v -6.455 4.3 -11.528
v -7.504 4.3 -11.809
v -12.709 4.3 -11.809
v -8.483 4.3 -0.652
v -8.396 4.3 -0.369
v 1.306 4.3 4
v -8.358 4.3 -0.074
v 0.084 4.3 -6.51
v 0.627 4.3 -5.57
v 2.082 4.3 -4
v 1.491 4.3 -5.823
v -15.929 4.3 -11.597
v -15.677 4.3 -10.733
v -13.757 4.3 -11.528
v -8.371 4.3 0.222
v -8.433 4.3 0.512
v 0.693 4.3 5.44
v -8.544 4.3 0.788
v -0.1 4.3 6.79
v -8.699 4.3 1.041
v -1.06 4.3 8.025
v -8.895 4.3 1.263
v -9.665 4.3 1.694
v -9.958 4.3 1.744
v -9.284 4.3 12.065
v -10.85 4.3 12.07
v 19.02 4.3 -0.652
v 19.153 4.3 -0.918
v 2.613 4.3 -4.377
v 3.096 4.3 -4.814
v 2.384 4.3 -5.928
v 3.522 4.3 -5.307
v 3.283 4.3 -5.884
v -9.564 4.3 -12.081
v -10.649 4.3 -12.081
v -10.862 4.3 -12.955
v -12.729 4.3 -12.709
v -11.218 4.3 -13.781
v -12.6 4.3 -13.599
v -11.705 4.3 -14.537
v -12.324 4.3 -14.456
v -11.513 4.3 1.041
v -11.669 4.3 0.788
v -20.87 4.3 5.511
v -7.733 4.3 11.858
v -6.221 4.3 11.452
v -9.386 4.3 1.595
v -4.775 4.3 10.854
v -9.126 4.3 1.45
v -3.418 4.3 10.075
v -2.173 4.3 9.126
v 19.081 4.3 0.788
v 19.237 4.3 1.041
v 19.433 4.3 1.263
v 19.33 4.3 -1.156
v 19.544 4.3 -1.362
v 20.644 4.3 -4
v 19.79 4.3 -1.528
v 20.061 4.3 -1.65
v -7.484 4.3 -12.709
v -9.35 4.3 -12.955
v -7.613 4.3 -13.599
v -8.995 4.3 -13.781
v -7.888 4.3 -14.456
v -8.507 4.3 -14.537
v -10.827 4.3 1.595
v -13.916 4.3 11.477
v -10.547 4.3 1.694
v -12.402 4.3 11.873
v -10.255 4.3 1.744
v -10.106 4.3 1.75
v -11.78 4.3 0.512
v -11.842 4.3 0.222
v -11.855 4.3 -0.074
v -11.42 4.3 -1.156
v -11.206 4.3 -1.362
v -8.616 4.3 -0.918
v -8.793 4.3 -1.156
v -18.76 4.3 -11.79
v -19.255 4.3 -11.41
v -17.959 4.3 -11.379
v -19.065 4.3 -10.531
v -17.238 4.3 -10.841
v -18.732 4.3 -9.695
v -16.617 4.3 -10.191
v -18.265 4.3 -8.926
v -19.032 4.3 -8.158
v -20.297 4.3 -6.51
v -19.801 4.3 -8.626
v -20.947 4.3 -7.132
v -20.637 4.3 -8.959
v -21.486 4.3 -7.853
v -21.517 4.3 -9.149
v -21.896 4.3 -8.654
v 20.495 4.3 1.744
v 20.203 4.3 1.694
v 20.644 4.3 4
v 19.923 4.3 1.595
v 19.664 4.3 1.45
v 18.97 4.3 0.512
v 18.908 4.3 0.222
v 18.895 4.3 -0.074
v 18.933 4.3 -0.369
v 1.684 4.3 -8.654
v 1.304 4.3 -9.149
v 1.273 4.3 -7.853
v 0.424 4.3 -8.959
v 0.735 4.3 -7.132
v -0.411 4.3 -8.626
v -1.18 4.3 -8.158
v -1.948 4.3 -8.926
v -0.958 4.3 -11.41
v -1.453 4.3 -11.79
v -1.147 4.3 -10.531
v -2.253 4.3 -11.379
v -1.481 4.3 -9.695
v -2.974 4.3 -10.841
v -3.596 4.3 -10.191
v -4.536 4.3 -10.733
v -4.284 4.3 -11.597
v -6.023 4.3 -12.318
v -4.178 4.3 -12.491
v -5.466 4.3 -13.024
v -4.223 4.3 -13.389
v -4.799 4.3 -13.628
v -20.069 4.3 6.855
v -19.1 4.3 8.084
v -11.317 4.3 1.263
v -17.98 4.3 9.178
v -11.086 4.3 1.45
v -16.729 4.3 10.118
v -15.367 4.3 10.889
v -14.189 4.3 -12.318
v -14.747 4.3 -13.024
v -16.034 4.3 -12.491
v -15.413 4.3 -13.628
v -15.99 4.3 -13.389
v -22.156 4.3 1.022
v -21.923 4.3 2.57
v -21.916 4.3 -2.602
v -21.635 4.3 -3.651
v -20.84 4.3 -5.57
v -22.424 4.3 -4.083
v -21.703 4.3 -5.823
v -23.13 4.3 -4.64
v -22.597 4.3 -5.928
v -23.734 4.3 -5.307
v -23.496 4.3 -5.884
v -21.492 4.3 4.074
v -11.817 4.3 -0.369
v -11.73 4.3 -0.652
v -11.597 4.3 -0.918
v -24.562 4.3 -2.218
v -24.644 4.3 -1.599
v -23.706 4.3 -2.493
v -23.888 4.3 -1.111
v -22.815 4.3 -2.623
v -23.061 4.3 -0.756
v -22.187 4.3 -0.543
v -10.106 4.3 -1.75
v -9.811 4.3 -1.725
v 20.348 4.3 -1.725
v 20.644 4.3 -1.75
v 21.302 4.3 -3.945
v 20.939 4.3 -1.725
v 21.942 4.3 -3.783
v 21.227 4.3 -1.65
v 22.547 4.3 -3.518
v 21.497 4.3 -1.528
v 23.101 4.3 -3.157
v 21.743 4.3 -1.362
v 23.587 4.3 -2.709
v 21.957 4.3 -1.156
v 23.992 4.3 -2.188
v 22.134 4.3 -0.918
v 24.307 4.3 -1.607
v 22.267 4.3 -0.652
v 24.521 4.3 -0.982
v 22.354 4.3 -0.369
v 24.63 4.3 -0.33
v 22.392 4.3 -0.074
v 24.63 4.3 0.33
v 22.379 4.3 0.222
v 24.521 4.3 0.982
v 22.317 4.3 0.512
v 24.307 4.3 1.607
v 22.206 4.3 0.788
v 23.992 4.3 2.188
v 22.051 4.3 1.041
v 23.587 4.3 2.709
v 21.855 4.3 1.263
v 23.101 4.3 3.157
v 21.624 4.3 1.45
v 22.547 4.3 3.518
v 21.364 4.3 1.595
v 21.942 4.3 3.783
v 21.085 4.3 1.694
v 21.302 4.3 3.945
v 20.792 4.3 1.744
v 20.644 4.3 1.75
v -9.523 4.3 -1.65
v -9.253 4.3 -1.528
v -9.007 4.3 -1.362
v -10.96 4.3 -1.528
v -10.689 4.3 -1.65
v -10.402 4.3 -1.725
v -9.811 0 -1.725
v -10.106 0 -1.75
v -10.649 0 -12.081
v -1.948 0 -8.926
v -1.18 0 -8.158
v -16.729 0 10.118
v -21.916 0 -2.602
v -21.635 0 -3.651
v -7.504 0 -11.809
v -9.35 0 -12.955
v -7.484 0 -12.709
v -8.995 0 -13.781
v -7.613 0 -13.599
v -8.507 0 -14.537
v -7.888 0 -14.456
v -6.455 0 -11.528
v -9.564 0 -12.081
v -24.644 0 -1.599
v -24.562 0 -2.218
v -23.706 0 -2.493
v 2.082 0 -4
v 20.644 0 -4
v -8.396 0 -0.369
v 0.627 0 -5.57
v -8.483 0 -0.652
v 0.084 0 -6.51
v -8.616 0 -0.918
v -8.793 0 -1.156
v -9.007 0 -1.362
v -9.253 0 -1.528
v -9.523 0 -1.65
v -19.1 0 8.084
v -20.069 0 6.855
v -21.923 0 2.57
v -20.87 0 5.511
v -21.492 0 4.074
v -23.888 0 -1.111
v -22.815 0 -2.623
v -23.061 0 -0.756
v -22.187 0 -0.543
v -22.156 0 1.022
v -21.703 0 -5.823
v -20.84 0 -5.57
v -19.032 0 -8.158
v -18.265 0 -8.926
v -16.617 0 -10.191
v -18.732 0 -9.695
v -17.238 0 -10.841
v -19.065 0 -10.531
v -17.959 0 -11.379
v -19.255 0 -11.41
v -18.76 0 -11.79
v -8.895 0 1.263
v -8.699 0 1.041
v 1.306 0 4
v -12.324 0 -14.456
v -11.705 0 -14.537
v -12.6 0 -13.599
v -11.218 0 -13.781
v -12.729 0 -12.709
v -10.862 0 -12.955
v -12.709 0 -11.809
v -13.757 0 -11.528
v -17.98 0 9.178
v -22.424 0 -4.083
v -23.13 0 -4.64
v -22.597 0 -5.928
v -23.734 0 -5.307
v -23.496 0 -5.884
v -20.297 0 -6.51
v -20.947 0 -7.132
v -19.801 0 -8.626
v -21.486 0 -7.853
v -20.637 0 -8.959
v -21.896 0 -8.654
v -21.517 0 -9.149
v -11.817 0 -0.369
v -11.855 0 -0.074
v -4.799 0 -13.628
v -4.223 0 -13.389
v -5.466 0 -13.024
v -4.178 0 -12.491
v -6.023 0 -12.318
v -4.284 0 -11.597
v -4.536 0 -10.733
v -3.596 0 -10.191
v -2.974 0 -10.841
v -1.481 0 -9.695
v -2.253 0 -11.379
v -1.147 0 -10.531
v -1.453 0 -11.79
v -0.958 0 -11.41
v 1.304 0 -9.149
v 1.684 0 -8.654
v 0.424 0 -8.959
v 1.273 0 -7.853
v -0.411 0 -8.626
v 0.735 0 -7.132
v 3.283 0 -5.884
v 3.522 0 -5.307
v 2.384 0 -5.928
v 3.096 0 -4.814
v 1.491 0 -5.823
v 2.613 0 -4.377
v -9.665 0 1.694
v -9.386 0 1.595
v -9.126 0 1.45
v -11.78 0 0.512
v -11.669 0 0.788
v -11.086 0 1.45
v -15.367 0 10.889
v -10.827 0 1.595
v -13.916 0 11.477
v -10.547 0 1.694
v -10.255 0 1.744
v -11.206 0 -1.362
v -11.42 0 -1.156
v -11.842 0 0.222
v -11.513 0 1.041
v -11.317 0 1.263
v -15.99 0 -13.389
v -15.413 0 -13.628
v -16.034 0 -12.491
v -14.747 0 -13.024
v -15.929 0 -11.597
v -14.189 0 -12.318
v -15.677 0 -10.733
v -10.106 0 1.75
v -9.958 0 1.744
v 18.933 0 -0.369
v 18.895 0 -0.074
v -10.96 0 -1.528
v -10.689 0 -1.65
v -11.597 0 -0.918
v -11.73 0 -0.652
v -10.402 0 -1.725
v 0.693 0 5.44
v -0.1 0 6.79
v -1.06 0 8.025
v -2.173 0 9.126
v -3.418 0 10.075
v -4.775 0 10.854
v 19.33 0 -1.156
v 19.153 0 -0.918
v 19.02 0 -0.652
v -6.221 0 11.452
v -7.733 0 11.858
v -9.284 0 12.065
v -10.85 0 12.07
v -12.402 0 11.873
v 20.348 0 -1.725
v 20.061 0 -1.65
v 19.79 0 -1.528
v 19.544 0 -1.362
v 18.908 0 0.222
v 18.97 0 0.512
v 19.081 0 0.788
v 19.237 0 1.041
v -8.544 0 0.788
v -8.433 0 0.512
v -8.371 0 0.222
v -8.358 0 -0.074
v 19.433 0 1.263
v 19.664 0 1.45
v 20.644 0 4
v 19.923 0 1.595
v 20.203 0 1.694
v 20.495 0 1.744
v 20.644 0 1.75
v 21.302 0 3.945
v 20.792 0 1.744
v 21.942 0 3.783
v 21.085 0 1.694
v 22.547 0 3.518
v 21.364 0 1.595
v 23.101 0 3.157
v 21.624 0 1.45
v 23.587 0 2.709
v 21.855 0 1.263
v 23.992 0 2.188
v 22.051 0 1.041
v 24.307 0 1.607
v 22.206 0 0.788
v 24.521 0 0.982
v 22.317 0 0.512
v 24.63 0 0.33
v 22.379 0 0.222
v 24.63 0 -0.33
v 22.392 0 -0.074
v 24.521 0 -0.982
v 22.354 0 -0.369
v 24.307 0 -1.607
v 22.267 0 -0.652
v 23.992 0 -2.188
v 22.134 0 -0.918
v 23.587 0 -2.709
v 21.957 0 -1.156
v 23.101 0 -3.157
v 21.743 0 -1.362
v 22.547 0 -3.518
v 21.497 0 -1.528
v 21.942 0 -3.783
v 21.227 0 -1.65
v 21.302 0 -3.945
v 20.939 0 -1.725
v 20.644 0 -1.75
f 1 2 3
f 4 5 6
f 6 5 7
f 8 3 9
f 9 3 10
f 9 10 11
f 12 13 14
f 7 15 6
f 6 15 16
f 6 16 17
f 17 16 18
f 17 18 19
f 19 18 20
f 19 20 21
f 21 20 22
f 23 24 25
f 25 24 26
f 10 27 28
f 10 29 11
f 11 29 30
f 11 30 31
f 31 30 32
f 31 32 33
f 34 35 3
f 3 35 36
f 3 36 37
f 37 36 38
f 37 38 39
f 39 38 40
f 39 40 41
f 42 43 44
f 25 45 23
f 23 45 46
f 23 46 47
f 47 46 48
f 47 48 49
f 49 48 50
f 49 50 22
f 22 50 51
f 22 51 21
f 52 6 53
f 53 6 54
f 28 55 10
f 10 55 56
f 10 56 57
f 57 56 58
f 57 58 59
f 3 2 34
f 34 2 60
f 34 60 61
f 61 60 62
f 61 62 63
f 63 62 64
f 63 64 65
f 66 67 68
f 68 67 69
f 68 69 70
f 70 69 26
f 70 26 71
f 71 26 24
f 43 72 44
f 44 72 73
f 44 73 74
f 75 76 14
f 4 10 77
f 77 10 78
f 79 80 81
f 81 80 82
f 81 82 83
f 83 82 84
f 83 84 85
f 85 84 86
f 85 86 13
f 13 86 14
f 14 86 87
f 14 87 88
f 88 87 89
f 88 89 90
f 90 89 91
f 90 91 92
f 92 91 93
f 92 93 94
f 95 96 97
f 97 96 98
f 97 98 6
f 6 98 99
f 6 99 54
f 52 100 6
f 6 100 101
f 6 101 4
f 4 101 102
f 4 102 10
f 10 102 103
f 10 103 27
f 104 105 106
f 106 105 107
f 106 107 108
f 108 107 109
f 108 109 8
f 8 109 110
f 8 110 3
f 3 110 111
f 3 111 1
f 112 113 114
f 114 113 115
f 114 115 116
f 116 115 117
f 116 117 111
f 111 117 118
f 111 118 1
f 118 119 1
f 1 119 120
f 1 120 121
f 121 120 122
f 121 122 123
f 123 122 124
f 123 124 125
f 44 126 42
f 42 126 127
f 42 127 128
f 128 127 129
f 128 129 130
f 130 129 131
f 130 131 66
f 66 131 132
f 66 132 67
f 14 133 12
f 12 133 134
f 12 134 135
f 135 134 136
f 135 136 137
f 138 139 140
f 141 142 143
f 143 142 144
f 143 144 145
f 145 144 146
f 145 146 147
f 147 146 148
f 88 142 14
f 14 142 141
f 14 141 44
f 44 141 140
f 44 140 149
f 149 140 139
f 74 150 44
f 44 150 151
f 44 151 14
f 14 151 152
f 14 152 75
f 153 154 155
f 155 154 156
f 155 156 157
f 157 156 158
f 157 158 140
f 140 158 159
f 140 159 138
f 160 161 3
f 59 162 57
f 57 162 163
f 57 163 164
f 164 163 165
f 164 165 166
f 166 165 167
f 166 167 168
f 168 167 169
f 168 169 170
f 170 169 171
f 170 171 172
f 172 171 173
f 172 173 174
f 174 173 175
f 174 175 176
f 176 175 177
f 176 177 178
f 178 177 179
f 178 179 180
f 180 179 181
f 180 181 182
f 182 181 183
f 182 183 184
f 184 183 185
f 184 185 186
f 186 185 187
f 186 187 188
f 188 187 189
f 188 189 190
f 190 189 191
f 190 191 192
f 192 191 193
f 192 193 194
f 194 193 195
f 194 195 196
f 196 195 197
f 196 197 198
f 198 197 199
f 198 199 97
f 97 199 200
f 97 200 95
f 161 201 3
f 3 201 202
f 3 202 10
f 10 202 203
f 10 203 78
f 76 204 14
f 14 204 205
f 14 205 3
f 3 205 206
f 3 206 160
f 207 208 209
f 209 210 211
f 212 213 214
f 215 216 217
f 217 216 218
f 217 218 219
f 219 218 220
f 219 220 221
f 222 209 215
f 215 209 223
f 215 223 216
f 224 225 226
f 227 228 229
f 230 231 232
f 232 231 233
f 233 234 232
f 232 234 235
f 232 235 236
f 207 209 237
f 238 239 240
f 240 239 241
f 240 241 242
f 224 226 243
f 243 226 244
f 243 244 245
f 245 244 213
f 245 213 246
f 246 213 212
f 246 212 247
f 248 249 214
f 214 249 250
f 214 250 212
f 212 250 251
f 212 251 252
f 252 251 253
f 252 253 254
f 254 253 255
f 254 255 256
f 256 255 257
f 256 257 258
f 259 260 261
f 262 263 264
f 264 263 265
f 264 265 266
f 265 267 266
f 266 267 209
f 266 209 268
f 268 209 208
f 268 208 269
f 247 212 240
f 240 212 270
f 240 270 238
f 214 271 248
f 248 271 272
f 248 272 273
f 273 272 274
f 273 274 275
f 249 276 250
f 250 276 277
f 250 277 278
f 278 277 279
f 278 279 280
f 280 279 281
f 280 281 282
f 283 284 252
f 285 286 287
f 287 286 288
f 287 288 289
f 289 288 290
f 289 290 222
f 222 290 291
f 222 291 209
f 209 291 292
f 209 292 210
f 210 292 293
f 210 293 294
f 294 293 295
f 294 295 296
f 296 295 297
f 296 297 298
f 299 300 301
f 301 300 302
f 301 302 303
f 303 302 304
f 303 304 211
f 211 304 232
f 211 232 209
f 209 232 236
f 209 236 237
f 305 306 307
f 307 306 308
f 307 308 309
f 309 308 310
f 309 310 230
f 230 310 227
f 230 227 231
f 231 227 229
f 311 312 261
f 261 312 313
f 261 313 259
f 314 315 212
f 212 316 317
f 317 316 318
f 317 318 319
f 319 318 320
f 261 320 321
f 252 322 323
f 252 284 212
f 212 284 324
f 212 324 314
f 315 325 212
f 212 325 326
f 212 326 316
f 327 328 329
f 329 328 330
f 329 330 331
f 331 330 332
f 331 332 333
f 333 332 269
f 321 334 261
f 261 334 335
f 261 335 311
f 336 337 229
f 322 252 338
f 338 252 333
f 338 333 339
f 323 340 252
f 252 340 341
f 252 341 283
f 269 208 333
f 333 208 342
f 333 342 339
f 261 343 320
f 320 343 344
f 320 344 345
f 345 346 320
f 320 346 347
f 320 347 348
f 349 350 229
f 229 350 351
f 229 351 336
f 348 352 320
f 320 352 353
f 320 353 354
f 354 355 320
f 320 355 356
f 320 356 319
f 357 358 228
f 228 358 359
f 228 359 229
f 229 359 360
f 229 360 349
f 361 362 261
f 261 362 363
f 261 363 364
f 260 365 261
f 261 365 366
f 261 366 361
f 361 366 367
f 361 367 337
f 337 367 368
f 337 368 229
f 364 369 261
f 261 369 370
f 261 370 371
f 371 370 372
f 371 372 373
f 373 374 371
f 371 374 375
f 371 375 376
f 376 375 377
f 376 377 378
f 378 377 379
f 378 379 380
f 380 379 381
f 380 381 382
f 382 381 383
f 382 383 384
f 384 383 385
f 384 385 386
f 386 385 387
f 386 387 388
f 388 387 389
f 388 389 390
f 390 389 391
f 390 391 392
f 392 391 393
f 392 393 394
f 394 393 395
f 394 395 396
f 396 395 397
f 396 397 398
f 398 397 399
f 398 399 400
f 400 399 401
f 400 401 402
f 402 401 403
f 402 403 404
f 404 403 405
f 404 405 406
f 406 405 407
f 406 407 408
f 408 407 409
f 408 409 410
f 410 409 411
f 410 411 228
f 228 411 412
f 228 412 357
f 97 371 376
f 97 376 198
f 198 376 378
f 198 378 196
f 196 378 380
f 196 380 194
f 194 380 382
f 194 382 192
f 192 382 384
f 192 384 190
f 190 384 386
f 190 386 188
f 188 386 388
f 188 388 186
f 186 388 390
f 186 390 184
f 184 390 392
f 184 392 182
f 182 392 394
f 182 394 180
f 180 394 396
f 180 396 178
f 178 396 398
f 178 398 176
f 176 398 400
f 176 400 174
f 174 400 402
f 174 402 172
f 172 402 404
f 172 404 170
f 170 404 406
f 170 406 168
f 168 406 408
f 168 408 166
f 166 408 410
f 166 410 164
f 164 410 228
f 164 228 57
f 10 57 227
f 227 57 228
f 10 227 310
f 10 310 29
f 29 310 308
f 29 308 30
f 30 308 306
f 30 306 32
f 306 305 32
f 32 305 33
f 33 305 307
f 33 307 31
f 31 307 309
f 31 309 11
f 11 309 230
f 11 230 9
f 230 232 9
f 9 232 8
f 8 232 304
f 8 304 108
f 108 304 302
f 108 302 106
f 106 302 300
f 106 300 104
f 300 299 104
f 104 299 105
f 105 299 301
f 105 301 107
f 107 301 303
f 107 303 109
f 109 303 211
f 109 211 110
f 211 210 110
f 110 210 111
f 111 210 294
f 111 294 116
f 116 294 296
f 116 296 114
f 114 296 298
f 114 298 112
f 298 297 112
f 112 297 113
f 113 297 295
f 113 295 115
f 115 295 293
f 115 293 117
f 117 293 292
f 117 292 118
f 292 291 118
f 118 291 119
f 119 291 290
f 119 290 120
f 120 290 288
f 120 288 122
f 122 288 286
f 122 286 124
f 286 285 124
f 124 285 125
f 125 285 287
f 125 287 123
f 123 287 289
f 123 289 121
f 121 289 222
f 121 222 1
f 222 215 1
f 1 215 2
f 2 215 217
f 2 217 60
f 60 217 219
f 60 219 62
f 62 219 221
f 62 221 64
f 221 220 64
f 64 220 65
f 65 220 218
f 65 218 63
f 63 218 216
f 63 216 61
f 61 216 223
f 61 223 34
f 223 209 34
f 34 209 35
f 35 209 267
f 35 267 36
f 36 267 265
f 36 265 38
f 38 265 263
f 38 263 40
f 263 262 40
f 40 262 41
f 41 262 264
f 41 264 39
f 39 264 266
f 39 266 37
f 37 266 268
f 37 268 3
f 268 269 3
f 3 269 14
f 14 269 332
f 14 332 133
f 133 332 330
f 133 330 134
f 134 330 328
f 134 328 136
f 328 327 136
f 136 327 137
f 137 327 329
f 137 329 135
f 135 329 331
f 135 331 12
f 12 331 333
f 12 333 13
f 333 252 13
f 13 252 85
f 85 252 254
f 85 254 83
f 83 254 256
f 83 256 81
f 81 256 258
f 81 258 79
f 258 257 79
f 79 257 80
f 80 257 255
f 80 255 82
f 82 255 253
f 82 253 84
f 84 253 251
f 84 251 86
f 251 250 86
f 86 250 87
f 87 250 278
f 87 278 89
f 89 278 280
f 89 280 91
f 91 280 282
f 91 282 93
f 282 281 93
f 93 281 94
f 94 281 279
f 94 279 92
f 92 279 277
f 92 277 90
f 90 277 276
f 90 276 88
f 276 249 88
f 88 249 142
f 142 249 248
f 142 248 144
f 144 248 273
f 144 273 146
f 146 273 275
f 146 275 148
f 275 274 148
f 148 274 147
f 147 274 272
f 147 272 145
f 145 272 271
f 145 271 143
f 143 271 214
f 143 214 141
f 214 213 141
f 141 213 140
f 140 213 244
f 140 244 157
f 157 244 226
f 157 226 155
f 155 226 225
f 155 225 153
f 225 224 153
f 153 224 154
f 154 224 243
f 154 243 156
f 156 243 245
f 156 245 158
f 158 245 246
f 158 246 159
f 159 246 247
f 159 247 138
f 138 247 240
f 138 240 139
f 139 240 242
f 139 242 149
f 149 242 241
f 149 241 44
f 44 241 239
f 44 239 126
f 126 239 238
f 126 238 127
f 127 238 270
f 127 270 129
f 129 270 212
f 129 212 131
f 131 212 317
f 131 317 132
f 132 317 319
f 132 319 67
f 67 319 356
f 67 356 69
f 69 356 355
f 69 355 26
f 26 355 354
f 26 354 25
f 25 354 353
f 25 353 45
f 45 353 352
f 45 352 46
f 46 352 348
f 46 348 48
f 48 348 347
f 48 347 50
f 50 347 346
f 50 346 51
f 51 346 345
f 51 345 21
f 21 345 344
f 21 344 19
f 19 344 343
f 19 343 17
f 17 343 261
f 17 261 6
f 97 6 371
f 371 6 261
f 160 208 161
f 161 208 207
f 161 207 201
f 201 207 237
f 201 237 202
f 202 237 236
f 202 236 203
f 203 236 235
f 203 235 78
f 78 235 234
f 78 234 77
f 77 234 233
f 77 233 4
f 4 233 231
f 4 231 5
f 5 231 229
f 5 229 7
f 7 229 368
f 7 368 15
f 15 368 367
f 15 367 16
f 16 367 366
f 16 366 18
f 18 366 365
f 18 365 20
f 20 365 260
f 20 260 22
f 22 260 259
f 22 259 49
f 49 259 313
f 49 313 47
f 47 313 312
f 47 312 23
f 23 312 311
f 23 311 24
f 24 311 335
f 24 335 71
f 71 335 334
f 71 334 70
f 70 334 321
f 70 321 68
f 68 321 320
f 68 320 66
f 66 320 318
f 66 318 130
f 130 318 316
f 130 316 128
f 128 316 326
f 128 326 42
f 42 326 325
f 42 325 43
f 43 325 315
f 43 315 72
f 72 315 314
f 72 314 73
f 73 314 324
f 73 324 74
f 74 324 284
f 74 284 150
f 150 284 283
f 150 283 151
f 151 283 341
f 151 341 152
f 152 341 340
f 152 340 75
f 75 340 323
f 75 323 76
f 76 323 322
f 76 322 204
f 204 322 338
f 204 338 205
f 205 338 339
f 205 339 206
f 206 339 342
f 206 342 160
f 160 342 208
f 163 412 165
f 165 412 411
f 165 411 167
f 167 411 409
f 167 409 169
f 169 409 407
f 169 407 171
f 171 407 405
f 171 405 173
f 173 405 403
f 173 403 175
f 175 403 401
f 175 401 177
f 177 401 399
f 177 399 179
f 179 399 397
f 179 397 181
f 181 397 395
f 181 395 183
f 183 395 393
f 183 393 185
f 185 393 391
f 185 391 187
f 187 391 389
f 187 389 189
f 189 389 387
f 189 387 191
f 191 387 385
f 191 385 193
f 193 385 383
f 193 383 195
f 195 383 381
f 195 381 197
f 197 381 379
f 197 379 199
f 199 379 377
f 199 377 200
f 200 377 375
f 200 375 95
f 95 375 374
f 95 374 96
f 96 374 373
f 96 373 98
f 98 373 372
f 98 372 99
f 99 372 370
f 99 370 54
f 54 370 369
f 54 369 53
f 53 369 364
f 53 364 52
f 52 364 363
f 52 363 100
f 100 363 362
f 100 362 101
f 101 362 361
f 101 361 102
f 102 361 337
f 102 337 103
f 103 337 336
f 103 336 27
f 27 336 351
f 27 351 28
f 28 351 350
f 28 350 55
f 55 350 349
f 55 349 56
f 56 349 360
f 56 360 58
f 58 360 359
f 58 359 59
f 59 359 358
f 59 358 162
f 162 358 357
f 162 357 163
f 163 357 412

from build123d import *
from build123d.topology import SkipClean

# Parameters (mm, degrees)
SKETCH1_R           = 1.75
BOSS_EXTRUDE1_DEPTH = 4.3
CUT_EXTRUDE1_START  = -10
CUT_EXTRUDE1_DEPTH  = 10


with BuildPart() as part:
    # Sketch1 → Boss-Extrude1 (new body)
    with BuildSketch(Plane(origin=(0, 0, 0), x_dir=(1, 0, 0), z_dir=(0, 1, 0))):
        with BuildLine():
            Line((20.643657446, 4), (2.081641936, 4))
            ThreePointArc((2.081641936, 4), (2.861028333, 4.588201733), (3.521749436, 5.30713988))
            ThreePointArc((3.521749436, 5.30713988), (3.405395609, 5.596745198), (3.282888305, 5.883801663))
            ThreePointArc((3.282888305, 5.883801663), (1.93527598, 5.894040025), (0.627094961, 5.57027124))
            ThreePointArc((0.627094961, 5.57027124), (0.366286148, 6.046375), (0.084372603, 6.510293938))
            ThreePointArc((0.084372603, 6.510293938), (1.018855105, 7.48132754), (1.683794586, 8.65351323))
            ThreePointArc((1.683794586, 8.65351323), (1.496450048, 8.903135899), (1.303821399, 9.148703928))
            ThreePointArc((1.303821399, 9.148703928), (-0.000522033, 8.809805691), (-1.180330337, 8.158486898))
            ThreePointArc((-1.180330337, 8.158486898), (-1.555477026, 8.550865528), (-1.947855656, 8.926012217))
            ThreePointArc((-1.947855656, 8.926012217), (-1.296536862, 10.105820521), (-0.957638625, 11.410163953))
            ThreePointArc((-0.957638625, 11.410163953), (-1.203206655, 11.602792602), (-1.452829324, 11.79013714))
            ThreePointArc((-1.452829324, 11.79013714), (-2.625015014, 11.125197659), (-3.596048616, 10.190715157))
            ThreePointArc((-3.596048616, 10.190715157), (-4.059967554, 10.472628702), (-4.536071314, 10.733437515))
            ThreePointArc((-4.536071314, 10.733437515), (-4.212302529, 12.041618533), (-4.222540891, 13.389230859))
            ThreePointArc((-4.222540891, 13.389230859), (-4.509597355, 13.511738163), (-4.799202674, 13.62809199))
            ThreePointArc((-4.799202674, 13.62809199), (-5.759348103, 12.682425791), (-6.455432668, 11.528463019))
            ThreePointArc((-6.455432668, 11.528463019), (-6.976508546, 11.680699536), (-7.503891752, 11.809396783))
            ThreePointArc((-7.503891752, 11.809396783), (-7.529737283, 13.156800143), (-7.888414517, 14.455843809))
            ThreePointArc((-7.888414517, 14.455843809), (-8.197396993, 14.499881098), (-8.507248835, 14.537314892))
            ThreePointArc((-8.507248835, 14.537314892), (-9.18992168, 13.375367565), (-9.563620196, 12.080565177))
            ThreePointArc((-9.563620196, 12.080565177), (-10.106342554, 12.09275), (-10.649064912, 12.080565177))
            ThreePointArc((-10.649064912, 12.080565177), (-11.022763428, 13.375367565), (-11.705436272, 14.537314892))
            ThreePointArc((-11.705436272, 14.537314892), (-12.015288115, 14.499881098), (-12.324270591, 14.455843809))
            ThreePointArc((-12.324270591, 14.455843809), (-12.682947825, 13.156800143), (-12.708793355, 11.809396783))
            ThreePointArc((-12.708793355, 11.809396783), (-13.236176561, 11.680699536), (-13.757252439, 11.528463019))
            ThreePointArc((-13.757252439, 11.528463019), (-14.453337005, 12.682425791), (-15.413482434, 13.62809199))
            ThreePointArc((-15.413482434, 13.62809199), (-15.703087752, 13.511738163), (-15.990144217, 13.389230859))
            ThreePointArc((-15.990144217, 13.389230859), (-16.000382579, 12.041618533), (-15.676613793, 10.733437515))
            ThreePointArc((-15.676613793, 10.733437515), (-16.152717554, 10.472628702), (-16.616636492, 10.190715157))
            ThreePointArc((-16.616636492, 10.190715157), (-17.587670094, 11.125197659), (-18.759855783, 11.79013714))
            ThreePointArc((-18.759855783, 11.79013714), (-19.009478453, 11.602792602), (-19.255046482, 11.410163953))
            ThreePointArc((-19.255046482, 11.410163953), (-18.916148245, 10.105820521), (-18.264829452, 8.926012217))
            ThreePointArc((-18.264829452, 8.926012217), (-18.657208082, 8.550865528), (-19.032354771, 8.158486898))
            ThreePointArc((-19.032354771, 8.158486898), (-20.212163074, 8.809805691), (-21.516506507, 9.148703928))
            ThreePointArc((-21.516506507, 9.148703928), (-21.709135156, 8.903135899), (-21.896479694, 8.65351323))
            ThreePointArc((-21.896479694, 8.65351323), (-21.231540213, 7.48132754), (-20.297057711, 6.510293938))
            ThreePointArc((-20.297057711, 6.510293938), (-20.578971255, 6.046375), (-20.839780068, 5.57027124))
            ThreePointArc((-20.839780068, 5.57027124), (-22.147961087, 5.894040025), (-23.495573413, 5.883801663))
            ThreePointArc((-23.495573413, 5.883801663), (-23.618080717, 5.596745198), (-23.734434544, 5.30713988))
            ThreePointArc((-23.734434544, 5.30713988), (-22.788768345, 4.346994451), (-21.634805572, 3.650909885))
            ThreePointArc((-21.634805572, 3.650909885), (-21.78704209, 3.129834008), (-21.915739337, 2.602450802))
            ThreePointArc((-21.915739337, 2.602450802), (-23.263142697, 2.576605271), (-24.562186363, 2.217928037))
            ThreePointArc((-24.562186363, 2.217928037), (-24.606223651, 1.908945561), (-24.643657446, 1.599093719))
            ThreePointArc((-24.643657446, 1.599093719), (-23.481710119, 0.916420874), (-22.186907731, 0.542722358))
            ThreePointArc((-22.186907731, 0.542722358), (-22.199092554, 0), (-22.186907731, -0.542722358))
            ThreePointArc((-22.186907731, -0.542722358), (-23.481710119, -0.916420874), (-24.643657446, -1.599093719))
            ThreePointArc((-24.643657446, -1.599093719), (-24.606223651, -1.908945561), (-24.562186363, -2.217928037))
            ThreePointArc((-24.562186363, -2.217928037), (-23.263142697, -2.576605271), (-21.915739337, -2.602450802))
            ThreePointArc((-21.915739337, -2.602450802), (-21.78704209, -3.129834008), (-21.634805572, -3.650909885))
            ThreePointArc((-21.634805572, -3.650909885), (-22.788768345, -4.346994451), (-23.734434544, -5.30713988))
            ThreePointArc((-23.734434544, -5.30713988), (-23.618080717, -5.596745198), (-23.495573413, -5.883801663))
            ThreePointArc((-23.495573413, -5.883801663), (-22.147961087, -5.894040025), (-20.839780068, -5.57027124))
            ThreePointArc((-20.839780068, -5.57027124), (-20.578971255, -6.046375), (-20.297057711, -6.510293938))
            ThreePointArc((-20.297057711, -6.510293938), (-21.231540213, -7.48132754), (-21.896479694, -8.65351323))
            ThreePointArc((-21.896479694, -8.65351323), (-21.709135156, -8.903135899), (-21.516506507, -9.148703928))
            ThreePointArc((-21.516506507, -9.148703928), (-20.212163074, -8.809805691), (-19.032354771, -8.158486898))
            ThreePointArc((-19.032354771, -8.158486898), (-18.657208082, -8.550865528), (-18.264829452, -8.926012217))
            ThreePointArc((-18.264829452, -8.926012217), (-18.916148245, -10.105820521), (-19.255046482, -11.410163953))
            ThreePointArc((-19.255046482, -11.410163953), (-19.009478453, -11.602792602), (-18.759855783, -11.79013714))
            ThreePointArc((-18.759855783, -11.79013714), (-17.587670094, -11.125197659), (-16.616636492, -10.190715157))
            ThreePointArc((-16.616636492, -10.190715157), (-16.152717554, -10.472628702), (-15.676613793, -10.733437515))
            ThreePointArc((-15.676613793, -10.733437515), (-16.000382579, -12.041618533), (-15.990144217, -13.389230859))
            ThreePointArc((-15.990144217, -13.389230859), (-15.703087752, -13.511738163), (-15.413482434, -13.62809199))
            ThreePointArc((-15.413482434, -13.62809199), (-14.453337005, -12.682425791), (-13.757252439, -11.528463019))
            ThreePointArc((-13.757252439, -11.528463019), (-13.236176561, -11.680699536), (-12.708793355, -11.809396783))
            ThreePointArc((-12.708793355, -11.809396783), (-12.682947825, -13.156800143), (-12.324270591, -14.455843809))
            ThreePointArc((-12.324270591, -14.455843809), (-12.015288115, -14.499881098), (-11.705436272, -14.537314892))
            ThreePointArc((-11.705436272, -14.537314892), (-11.022763428, -13.375367565), (-10.649064912, -12.080565177))
            ThreePointArc((-10.649064912, -12.080565177), (-10.106342554, -12.09275), (-9.563620196, -12.080565177))
            ThreePointArc((-9.563620196, -12.080565177), (-9.18992168, -13.375367565), (-8.507248835, -14.537314892))
            ThreePointArc((-8.507248835, -14.537314892), (-8.197396993, -14.499881098), (-7.888414517, -14.455843809))
            ThreePointArc((-7.888414517, -14.455843809), (-7.529737283, -13.156800143), (-7.503891752, -11.809396783))
            ThreePointArc((-7.503891752, -11.809396783), (-6.976508546, -11.680699536), (-6.455432668, -11.528463019))
            ThreePointArc((-6.455432668, -11.528463019), (-5.759348103, -12.682425791), (-4.799202674, -13.62809199))
            ThreePointArc((-4.799202674, -13.62809199), (-4.509597355, -13.511738163), (-4.222540891, -13.389230859))
            ThreePointArc((-4.222540891, -13.389230859), (-4.212302529, -12.041618533), (-4.536071314, -10.733437515))
            ThreePointArc((-4.536071314, -10.733437515), (-4.059967554, -10.472628702), (-3.596048616, -10.190715157))
            ThreePointArc((-3.596048616, -10.190715157), (-2.625015014, -11.125197659), (-1.452829324, -11.79013714))
            ThreePointArc((-1.452829324, -11.79013714), (-1.203206655, -11.602792602), (-0.957638625, -11.410163953))
            ThreePointArc((-0.957638625, -11.410163953), (-1.296536862, -10.105820521), (-1.947855656, -8.926012217))
            ThreePointArc((-1.947855656, -8.926012217), (-1.555477026, -8.550865528), (-1.180330337, -8.158486898))
            ThreePointArc((-1.180330337, -8.158486898), (-0.000522033, -8.809805691), (1.303821399, -9.148703928))
            ThreePointArc((1.303821399, -9.148703928), (1.496450048, -8.903135899), (1.683794586, -8.65351323))
            ThreePointArc((1.683794586, -8.65351323), (1.018855105, -7.48132754), (0.084372603, -6.510293938))
            ThreePointArc((0.084372603, -6.510293938), (0.366286148, -6.046375), (0.627094961, -5.57027124))
            ThreePointArc((0.627094961, -5.57027124), (1.93527598, -5.894040025), (3.282888305, -5.883801663))
            ThreePointArc((3.282888305, -5.883801663), (3.405395609, -5.596745198), (3.521749436, -5.30713988))
            ThreePointArc((3.521749436, -5.30713988), (2.861028333, -4.588201733), (2.081641936, -4))
            Line((2.081641936, -4), (20.643657446, -4))
            ThreePointArc((20.643657446, -4), (24.643657446, 0), (20.643657446, 4))
        make_face()
        with Locations(Location((-10.106342554, 0, 0), (0, 0, 90))):
            Circle(SKETCH1_R, mode=Mode.SUBTRACT)
        with Locations(Location((20.643657446, 0, 0), (0, 0, 90))):
            Circle(SKETCH1_R, mode=Mode.SUBTRACT)
    extrude(amount=BOSS_EXTRUDE1_DEPTH)

    # Sketch2 → Cut-Extrude1 (cut)
    with SkipClean():  # the faces are left unmerged after this step: merging them gives an invalid solid
        with BuildSketch(Plane(origin=(0, 4.3, 0), x_dir=(1, 0, 0), z_dir=(0, 1, 0)).offset(CUT_EXTRUDE1_START)):
            with BuildLine():
                ThreePointArc((-24.562186363, -2.217928037), (-23.263142697, -2.576605271), (-21.915739337, -2.602450802))
                ThreePointArc((-21.915739337, -2.602450802), (-22.095637401, -1.578420611), (-22.186907731, -0.542722358))
                ThreePointArc((-22.186907731, -0.542722358), (-23.481710119, -0.916420874), (-24.643657446, -1.599093719))
                ThreePointArc((-24.643657446, -1.599093719), (-24.606223651, -1.908945561), (-24.562186363, -2.217928037))
            make_face()
            with BuildLine():
                ThreePointArc((-23.495573413, -5.883801663), (-22.147961087, -5.894040025), (-20.839780068, -5.57027124))
                ThreePointArc((-20.839780068, -5.57027124), (-21.278586771, -4.627695077), (-21.634805572, -3.650909885))
                ThreePointArc((-21.634805572, -3.650909885), (-22.788768345, -4.346994451), (-23.734434544, -5.30713988))
                ThreePointArc((-23.734434544, -5.30713988), (-23.618080717, -5.596745198), (-23.495573413, -5.883801663))
            make_face()
            with BuildLine():
                ThreePointArc((-21.516506507, -9.148703928), (-20.212163074, -8.809805691), (-19.032354771, -8.158486898))
                ThreePointArc((-19.032354771, -8.158486898), (-19.70016616, -7.361599771), (-20.297057711, -6.510293938))
                ThreePointArc((-20.297057711, -6.510293938), (-21.231540213, -7.48132754), (-21.896479694, -8.65351323))
                ThreePointArc((-21.896479694, -8.65351323), (-21.709135156, -8.903135899), (-21.516506507, -9.148703928))
            make_face()
            with BuildLine():
                ThreePointArc((-18.759855783, -11.79013714), (-17.587670094, -11.125197659), (-16.616636492, -10.190715157))
                ThreePointArc((-16.616636492, -10.190715157), (-17.467942324, -9.593823606), (-18.264829452, -8.926012217))
                ThreePointArc((-18.264829452, -8.926012217), (-18.916148245, -10.105820521), (-19.255046482, -11.410163953))
                ThreePointArc((-19.255046482, -11.410163953), (-19.009478453, -11.602792602), (-18.759855783, -11.79013714))
            make_face()
            with BuildLine():
                ThreePointArc((-15.413482434, -13.62809199), (-14.453337005, -12.682425791), (-13.757252439, -11.528463019))
                ThreePointArc((-13.757252439, -11.528463019), (-14.734037631, -11.172244217), (-15.676613793, -10.733437515))
                ThreePointArc((-15.676613793, -10.733437515), (-16.000382579, -12.041618533), (-15.990144217, -13.389230859))
                ThreePointArc((-15.990144217, -13.389230859), (-15.703087752, -13.511738163), (-15.413482434, -13.62809199))
            make_face()
            with BuildLine():
                ThreePointArc((-11.705436272, -14.537314892), (-11.022763428, -13.375367565), (-10.649064912, -12.080565177))
                ThreePointArc((-10.649064912, -12.080565177), (-11.684763165, -11.989294847), (-12.708793355, -11.809396783))
                ThreePointArc((-12.708793355, -11.809396783), (-12.682947825, -13.156800143), (-12.324270591, -14.455843809))
                ThreePointArc((-12.324270591, -14.455843809), (-12.015288115, -14.499881098), (-11.705436272, -14.537314892))
            make_face()
            with BuildLine():
                ThreePointArc((-7.888414517, -14.455843809), (-7.529737283, -13.156800143), (-7.503891752, -11.809396783))
                ThreePointArc((-7.503891752, -11.809396783), (-8.527921943, -11.989294847), (-9.563620196, -12.080565177))
                ThreePointArc((-9.563620196, -12.080565177), (-9.18992168, -13.375367565), (-8.507248835, -14.537314892))
                ThreePointArc((-8.507248835, -14.537314892), (-8.197396993, -14.499881098), (-7.888414517, -14.455843809))
            make_face()
            with BuildLine():
                ThreePointArc((-4.222540891, -13.389230859), (-4.212302529, -12.041618533), (-4.536071314, -10.733437515))
                ThreePointArc((-4.536071314, -10.733437515), (-5.478647477, -11.172244217), (-6.455432668, -11.528463019))
                ThreePointArc((-6.455432668, -11.528463019), (-5.759348103, -12.682425791), (-4.799202674, -13.62809199))
                ThreePointArc((-4.799202674, -13.62809199), (-4.509597355, -13.511738163), (-4.222540891, -13.389230859))
            make_face()
            with BuildLine():
                ThreePointArc((-0.957638625, -11.410163953), (-1.296536862, -10.105820521), (-1.947855656, -8.926012217))
                ThreePointArc((-1.947855656, -8.926012217), (-2.744742783, -9.593823606), (-3.596048616, -10.190715157))
                ThreePointArc((-3.596048616, -10.190715157), (-2.625015014, -11.125197659), (-1.452829324, -11.79013714))
                ThreePointArc((-1.452829324, -11.79013714), (-1.203206655, -11.602792602), (-0.957638625, -11.410163953))
            make_face()
            with BuildLine():
                ThreePointArc((1.683794586, -8.65351323), (1.018855105, -7.48132754), (0.084372603, -6.510293938))
                ThreePointArc((0.084372603, -6.510293938), (-0.512518948, -7.361599771), (-1.180330337, -8.158486898))
                ThreePointArc((-1.180330337, -8.158486898), (-0.000522033, -8.809805691), (1.303821399, -9.148703928))
                ThreePointArc((1.303821399, -9.148703928), (1.496450048, -8.903135899), (1.683794586, -8.65351323))
            make_face()
            with BuildLine():
                ThreePointArc((3.521749436, -5.30713988), (2.861028333, -4.588201733), (2.081641936, -4))
                Line((2.081641936, -4), (1.305695063, -4))
                ThreePointArc((1.305695063, -4), (0.994195953, -4.797149927), (0.627094961, -5.57027124))
                ThreePointArc((0.627094961, -5.57027124), (1.93527598, -5.894040025), (3.282888305, -5.883801663))
                ThreePointArc((3.282888305, -5.883801663), (3.405395609, -5.596745198), (3.521749436, -5.30713988))
            make_face()
        extrude(amount=CUT_EXTRUDE1_DEPTH, mode=Mode.SUBTRACT)


solid = part.part
